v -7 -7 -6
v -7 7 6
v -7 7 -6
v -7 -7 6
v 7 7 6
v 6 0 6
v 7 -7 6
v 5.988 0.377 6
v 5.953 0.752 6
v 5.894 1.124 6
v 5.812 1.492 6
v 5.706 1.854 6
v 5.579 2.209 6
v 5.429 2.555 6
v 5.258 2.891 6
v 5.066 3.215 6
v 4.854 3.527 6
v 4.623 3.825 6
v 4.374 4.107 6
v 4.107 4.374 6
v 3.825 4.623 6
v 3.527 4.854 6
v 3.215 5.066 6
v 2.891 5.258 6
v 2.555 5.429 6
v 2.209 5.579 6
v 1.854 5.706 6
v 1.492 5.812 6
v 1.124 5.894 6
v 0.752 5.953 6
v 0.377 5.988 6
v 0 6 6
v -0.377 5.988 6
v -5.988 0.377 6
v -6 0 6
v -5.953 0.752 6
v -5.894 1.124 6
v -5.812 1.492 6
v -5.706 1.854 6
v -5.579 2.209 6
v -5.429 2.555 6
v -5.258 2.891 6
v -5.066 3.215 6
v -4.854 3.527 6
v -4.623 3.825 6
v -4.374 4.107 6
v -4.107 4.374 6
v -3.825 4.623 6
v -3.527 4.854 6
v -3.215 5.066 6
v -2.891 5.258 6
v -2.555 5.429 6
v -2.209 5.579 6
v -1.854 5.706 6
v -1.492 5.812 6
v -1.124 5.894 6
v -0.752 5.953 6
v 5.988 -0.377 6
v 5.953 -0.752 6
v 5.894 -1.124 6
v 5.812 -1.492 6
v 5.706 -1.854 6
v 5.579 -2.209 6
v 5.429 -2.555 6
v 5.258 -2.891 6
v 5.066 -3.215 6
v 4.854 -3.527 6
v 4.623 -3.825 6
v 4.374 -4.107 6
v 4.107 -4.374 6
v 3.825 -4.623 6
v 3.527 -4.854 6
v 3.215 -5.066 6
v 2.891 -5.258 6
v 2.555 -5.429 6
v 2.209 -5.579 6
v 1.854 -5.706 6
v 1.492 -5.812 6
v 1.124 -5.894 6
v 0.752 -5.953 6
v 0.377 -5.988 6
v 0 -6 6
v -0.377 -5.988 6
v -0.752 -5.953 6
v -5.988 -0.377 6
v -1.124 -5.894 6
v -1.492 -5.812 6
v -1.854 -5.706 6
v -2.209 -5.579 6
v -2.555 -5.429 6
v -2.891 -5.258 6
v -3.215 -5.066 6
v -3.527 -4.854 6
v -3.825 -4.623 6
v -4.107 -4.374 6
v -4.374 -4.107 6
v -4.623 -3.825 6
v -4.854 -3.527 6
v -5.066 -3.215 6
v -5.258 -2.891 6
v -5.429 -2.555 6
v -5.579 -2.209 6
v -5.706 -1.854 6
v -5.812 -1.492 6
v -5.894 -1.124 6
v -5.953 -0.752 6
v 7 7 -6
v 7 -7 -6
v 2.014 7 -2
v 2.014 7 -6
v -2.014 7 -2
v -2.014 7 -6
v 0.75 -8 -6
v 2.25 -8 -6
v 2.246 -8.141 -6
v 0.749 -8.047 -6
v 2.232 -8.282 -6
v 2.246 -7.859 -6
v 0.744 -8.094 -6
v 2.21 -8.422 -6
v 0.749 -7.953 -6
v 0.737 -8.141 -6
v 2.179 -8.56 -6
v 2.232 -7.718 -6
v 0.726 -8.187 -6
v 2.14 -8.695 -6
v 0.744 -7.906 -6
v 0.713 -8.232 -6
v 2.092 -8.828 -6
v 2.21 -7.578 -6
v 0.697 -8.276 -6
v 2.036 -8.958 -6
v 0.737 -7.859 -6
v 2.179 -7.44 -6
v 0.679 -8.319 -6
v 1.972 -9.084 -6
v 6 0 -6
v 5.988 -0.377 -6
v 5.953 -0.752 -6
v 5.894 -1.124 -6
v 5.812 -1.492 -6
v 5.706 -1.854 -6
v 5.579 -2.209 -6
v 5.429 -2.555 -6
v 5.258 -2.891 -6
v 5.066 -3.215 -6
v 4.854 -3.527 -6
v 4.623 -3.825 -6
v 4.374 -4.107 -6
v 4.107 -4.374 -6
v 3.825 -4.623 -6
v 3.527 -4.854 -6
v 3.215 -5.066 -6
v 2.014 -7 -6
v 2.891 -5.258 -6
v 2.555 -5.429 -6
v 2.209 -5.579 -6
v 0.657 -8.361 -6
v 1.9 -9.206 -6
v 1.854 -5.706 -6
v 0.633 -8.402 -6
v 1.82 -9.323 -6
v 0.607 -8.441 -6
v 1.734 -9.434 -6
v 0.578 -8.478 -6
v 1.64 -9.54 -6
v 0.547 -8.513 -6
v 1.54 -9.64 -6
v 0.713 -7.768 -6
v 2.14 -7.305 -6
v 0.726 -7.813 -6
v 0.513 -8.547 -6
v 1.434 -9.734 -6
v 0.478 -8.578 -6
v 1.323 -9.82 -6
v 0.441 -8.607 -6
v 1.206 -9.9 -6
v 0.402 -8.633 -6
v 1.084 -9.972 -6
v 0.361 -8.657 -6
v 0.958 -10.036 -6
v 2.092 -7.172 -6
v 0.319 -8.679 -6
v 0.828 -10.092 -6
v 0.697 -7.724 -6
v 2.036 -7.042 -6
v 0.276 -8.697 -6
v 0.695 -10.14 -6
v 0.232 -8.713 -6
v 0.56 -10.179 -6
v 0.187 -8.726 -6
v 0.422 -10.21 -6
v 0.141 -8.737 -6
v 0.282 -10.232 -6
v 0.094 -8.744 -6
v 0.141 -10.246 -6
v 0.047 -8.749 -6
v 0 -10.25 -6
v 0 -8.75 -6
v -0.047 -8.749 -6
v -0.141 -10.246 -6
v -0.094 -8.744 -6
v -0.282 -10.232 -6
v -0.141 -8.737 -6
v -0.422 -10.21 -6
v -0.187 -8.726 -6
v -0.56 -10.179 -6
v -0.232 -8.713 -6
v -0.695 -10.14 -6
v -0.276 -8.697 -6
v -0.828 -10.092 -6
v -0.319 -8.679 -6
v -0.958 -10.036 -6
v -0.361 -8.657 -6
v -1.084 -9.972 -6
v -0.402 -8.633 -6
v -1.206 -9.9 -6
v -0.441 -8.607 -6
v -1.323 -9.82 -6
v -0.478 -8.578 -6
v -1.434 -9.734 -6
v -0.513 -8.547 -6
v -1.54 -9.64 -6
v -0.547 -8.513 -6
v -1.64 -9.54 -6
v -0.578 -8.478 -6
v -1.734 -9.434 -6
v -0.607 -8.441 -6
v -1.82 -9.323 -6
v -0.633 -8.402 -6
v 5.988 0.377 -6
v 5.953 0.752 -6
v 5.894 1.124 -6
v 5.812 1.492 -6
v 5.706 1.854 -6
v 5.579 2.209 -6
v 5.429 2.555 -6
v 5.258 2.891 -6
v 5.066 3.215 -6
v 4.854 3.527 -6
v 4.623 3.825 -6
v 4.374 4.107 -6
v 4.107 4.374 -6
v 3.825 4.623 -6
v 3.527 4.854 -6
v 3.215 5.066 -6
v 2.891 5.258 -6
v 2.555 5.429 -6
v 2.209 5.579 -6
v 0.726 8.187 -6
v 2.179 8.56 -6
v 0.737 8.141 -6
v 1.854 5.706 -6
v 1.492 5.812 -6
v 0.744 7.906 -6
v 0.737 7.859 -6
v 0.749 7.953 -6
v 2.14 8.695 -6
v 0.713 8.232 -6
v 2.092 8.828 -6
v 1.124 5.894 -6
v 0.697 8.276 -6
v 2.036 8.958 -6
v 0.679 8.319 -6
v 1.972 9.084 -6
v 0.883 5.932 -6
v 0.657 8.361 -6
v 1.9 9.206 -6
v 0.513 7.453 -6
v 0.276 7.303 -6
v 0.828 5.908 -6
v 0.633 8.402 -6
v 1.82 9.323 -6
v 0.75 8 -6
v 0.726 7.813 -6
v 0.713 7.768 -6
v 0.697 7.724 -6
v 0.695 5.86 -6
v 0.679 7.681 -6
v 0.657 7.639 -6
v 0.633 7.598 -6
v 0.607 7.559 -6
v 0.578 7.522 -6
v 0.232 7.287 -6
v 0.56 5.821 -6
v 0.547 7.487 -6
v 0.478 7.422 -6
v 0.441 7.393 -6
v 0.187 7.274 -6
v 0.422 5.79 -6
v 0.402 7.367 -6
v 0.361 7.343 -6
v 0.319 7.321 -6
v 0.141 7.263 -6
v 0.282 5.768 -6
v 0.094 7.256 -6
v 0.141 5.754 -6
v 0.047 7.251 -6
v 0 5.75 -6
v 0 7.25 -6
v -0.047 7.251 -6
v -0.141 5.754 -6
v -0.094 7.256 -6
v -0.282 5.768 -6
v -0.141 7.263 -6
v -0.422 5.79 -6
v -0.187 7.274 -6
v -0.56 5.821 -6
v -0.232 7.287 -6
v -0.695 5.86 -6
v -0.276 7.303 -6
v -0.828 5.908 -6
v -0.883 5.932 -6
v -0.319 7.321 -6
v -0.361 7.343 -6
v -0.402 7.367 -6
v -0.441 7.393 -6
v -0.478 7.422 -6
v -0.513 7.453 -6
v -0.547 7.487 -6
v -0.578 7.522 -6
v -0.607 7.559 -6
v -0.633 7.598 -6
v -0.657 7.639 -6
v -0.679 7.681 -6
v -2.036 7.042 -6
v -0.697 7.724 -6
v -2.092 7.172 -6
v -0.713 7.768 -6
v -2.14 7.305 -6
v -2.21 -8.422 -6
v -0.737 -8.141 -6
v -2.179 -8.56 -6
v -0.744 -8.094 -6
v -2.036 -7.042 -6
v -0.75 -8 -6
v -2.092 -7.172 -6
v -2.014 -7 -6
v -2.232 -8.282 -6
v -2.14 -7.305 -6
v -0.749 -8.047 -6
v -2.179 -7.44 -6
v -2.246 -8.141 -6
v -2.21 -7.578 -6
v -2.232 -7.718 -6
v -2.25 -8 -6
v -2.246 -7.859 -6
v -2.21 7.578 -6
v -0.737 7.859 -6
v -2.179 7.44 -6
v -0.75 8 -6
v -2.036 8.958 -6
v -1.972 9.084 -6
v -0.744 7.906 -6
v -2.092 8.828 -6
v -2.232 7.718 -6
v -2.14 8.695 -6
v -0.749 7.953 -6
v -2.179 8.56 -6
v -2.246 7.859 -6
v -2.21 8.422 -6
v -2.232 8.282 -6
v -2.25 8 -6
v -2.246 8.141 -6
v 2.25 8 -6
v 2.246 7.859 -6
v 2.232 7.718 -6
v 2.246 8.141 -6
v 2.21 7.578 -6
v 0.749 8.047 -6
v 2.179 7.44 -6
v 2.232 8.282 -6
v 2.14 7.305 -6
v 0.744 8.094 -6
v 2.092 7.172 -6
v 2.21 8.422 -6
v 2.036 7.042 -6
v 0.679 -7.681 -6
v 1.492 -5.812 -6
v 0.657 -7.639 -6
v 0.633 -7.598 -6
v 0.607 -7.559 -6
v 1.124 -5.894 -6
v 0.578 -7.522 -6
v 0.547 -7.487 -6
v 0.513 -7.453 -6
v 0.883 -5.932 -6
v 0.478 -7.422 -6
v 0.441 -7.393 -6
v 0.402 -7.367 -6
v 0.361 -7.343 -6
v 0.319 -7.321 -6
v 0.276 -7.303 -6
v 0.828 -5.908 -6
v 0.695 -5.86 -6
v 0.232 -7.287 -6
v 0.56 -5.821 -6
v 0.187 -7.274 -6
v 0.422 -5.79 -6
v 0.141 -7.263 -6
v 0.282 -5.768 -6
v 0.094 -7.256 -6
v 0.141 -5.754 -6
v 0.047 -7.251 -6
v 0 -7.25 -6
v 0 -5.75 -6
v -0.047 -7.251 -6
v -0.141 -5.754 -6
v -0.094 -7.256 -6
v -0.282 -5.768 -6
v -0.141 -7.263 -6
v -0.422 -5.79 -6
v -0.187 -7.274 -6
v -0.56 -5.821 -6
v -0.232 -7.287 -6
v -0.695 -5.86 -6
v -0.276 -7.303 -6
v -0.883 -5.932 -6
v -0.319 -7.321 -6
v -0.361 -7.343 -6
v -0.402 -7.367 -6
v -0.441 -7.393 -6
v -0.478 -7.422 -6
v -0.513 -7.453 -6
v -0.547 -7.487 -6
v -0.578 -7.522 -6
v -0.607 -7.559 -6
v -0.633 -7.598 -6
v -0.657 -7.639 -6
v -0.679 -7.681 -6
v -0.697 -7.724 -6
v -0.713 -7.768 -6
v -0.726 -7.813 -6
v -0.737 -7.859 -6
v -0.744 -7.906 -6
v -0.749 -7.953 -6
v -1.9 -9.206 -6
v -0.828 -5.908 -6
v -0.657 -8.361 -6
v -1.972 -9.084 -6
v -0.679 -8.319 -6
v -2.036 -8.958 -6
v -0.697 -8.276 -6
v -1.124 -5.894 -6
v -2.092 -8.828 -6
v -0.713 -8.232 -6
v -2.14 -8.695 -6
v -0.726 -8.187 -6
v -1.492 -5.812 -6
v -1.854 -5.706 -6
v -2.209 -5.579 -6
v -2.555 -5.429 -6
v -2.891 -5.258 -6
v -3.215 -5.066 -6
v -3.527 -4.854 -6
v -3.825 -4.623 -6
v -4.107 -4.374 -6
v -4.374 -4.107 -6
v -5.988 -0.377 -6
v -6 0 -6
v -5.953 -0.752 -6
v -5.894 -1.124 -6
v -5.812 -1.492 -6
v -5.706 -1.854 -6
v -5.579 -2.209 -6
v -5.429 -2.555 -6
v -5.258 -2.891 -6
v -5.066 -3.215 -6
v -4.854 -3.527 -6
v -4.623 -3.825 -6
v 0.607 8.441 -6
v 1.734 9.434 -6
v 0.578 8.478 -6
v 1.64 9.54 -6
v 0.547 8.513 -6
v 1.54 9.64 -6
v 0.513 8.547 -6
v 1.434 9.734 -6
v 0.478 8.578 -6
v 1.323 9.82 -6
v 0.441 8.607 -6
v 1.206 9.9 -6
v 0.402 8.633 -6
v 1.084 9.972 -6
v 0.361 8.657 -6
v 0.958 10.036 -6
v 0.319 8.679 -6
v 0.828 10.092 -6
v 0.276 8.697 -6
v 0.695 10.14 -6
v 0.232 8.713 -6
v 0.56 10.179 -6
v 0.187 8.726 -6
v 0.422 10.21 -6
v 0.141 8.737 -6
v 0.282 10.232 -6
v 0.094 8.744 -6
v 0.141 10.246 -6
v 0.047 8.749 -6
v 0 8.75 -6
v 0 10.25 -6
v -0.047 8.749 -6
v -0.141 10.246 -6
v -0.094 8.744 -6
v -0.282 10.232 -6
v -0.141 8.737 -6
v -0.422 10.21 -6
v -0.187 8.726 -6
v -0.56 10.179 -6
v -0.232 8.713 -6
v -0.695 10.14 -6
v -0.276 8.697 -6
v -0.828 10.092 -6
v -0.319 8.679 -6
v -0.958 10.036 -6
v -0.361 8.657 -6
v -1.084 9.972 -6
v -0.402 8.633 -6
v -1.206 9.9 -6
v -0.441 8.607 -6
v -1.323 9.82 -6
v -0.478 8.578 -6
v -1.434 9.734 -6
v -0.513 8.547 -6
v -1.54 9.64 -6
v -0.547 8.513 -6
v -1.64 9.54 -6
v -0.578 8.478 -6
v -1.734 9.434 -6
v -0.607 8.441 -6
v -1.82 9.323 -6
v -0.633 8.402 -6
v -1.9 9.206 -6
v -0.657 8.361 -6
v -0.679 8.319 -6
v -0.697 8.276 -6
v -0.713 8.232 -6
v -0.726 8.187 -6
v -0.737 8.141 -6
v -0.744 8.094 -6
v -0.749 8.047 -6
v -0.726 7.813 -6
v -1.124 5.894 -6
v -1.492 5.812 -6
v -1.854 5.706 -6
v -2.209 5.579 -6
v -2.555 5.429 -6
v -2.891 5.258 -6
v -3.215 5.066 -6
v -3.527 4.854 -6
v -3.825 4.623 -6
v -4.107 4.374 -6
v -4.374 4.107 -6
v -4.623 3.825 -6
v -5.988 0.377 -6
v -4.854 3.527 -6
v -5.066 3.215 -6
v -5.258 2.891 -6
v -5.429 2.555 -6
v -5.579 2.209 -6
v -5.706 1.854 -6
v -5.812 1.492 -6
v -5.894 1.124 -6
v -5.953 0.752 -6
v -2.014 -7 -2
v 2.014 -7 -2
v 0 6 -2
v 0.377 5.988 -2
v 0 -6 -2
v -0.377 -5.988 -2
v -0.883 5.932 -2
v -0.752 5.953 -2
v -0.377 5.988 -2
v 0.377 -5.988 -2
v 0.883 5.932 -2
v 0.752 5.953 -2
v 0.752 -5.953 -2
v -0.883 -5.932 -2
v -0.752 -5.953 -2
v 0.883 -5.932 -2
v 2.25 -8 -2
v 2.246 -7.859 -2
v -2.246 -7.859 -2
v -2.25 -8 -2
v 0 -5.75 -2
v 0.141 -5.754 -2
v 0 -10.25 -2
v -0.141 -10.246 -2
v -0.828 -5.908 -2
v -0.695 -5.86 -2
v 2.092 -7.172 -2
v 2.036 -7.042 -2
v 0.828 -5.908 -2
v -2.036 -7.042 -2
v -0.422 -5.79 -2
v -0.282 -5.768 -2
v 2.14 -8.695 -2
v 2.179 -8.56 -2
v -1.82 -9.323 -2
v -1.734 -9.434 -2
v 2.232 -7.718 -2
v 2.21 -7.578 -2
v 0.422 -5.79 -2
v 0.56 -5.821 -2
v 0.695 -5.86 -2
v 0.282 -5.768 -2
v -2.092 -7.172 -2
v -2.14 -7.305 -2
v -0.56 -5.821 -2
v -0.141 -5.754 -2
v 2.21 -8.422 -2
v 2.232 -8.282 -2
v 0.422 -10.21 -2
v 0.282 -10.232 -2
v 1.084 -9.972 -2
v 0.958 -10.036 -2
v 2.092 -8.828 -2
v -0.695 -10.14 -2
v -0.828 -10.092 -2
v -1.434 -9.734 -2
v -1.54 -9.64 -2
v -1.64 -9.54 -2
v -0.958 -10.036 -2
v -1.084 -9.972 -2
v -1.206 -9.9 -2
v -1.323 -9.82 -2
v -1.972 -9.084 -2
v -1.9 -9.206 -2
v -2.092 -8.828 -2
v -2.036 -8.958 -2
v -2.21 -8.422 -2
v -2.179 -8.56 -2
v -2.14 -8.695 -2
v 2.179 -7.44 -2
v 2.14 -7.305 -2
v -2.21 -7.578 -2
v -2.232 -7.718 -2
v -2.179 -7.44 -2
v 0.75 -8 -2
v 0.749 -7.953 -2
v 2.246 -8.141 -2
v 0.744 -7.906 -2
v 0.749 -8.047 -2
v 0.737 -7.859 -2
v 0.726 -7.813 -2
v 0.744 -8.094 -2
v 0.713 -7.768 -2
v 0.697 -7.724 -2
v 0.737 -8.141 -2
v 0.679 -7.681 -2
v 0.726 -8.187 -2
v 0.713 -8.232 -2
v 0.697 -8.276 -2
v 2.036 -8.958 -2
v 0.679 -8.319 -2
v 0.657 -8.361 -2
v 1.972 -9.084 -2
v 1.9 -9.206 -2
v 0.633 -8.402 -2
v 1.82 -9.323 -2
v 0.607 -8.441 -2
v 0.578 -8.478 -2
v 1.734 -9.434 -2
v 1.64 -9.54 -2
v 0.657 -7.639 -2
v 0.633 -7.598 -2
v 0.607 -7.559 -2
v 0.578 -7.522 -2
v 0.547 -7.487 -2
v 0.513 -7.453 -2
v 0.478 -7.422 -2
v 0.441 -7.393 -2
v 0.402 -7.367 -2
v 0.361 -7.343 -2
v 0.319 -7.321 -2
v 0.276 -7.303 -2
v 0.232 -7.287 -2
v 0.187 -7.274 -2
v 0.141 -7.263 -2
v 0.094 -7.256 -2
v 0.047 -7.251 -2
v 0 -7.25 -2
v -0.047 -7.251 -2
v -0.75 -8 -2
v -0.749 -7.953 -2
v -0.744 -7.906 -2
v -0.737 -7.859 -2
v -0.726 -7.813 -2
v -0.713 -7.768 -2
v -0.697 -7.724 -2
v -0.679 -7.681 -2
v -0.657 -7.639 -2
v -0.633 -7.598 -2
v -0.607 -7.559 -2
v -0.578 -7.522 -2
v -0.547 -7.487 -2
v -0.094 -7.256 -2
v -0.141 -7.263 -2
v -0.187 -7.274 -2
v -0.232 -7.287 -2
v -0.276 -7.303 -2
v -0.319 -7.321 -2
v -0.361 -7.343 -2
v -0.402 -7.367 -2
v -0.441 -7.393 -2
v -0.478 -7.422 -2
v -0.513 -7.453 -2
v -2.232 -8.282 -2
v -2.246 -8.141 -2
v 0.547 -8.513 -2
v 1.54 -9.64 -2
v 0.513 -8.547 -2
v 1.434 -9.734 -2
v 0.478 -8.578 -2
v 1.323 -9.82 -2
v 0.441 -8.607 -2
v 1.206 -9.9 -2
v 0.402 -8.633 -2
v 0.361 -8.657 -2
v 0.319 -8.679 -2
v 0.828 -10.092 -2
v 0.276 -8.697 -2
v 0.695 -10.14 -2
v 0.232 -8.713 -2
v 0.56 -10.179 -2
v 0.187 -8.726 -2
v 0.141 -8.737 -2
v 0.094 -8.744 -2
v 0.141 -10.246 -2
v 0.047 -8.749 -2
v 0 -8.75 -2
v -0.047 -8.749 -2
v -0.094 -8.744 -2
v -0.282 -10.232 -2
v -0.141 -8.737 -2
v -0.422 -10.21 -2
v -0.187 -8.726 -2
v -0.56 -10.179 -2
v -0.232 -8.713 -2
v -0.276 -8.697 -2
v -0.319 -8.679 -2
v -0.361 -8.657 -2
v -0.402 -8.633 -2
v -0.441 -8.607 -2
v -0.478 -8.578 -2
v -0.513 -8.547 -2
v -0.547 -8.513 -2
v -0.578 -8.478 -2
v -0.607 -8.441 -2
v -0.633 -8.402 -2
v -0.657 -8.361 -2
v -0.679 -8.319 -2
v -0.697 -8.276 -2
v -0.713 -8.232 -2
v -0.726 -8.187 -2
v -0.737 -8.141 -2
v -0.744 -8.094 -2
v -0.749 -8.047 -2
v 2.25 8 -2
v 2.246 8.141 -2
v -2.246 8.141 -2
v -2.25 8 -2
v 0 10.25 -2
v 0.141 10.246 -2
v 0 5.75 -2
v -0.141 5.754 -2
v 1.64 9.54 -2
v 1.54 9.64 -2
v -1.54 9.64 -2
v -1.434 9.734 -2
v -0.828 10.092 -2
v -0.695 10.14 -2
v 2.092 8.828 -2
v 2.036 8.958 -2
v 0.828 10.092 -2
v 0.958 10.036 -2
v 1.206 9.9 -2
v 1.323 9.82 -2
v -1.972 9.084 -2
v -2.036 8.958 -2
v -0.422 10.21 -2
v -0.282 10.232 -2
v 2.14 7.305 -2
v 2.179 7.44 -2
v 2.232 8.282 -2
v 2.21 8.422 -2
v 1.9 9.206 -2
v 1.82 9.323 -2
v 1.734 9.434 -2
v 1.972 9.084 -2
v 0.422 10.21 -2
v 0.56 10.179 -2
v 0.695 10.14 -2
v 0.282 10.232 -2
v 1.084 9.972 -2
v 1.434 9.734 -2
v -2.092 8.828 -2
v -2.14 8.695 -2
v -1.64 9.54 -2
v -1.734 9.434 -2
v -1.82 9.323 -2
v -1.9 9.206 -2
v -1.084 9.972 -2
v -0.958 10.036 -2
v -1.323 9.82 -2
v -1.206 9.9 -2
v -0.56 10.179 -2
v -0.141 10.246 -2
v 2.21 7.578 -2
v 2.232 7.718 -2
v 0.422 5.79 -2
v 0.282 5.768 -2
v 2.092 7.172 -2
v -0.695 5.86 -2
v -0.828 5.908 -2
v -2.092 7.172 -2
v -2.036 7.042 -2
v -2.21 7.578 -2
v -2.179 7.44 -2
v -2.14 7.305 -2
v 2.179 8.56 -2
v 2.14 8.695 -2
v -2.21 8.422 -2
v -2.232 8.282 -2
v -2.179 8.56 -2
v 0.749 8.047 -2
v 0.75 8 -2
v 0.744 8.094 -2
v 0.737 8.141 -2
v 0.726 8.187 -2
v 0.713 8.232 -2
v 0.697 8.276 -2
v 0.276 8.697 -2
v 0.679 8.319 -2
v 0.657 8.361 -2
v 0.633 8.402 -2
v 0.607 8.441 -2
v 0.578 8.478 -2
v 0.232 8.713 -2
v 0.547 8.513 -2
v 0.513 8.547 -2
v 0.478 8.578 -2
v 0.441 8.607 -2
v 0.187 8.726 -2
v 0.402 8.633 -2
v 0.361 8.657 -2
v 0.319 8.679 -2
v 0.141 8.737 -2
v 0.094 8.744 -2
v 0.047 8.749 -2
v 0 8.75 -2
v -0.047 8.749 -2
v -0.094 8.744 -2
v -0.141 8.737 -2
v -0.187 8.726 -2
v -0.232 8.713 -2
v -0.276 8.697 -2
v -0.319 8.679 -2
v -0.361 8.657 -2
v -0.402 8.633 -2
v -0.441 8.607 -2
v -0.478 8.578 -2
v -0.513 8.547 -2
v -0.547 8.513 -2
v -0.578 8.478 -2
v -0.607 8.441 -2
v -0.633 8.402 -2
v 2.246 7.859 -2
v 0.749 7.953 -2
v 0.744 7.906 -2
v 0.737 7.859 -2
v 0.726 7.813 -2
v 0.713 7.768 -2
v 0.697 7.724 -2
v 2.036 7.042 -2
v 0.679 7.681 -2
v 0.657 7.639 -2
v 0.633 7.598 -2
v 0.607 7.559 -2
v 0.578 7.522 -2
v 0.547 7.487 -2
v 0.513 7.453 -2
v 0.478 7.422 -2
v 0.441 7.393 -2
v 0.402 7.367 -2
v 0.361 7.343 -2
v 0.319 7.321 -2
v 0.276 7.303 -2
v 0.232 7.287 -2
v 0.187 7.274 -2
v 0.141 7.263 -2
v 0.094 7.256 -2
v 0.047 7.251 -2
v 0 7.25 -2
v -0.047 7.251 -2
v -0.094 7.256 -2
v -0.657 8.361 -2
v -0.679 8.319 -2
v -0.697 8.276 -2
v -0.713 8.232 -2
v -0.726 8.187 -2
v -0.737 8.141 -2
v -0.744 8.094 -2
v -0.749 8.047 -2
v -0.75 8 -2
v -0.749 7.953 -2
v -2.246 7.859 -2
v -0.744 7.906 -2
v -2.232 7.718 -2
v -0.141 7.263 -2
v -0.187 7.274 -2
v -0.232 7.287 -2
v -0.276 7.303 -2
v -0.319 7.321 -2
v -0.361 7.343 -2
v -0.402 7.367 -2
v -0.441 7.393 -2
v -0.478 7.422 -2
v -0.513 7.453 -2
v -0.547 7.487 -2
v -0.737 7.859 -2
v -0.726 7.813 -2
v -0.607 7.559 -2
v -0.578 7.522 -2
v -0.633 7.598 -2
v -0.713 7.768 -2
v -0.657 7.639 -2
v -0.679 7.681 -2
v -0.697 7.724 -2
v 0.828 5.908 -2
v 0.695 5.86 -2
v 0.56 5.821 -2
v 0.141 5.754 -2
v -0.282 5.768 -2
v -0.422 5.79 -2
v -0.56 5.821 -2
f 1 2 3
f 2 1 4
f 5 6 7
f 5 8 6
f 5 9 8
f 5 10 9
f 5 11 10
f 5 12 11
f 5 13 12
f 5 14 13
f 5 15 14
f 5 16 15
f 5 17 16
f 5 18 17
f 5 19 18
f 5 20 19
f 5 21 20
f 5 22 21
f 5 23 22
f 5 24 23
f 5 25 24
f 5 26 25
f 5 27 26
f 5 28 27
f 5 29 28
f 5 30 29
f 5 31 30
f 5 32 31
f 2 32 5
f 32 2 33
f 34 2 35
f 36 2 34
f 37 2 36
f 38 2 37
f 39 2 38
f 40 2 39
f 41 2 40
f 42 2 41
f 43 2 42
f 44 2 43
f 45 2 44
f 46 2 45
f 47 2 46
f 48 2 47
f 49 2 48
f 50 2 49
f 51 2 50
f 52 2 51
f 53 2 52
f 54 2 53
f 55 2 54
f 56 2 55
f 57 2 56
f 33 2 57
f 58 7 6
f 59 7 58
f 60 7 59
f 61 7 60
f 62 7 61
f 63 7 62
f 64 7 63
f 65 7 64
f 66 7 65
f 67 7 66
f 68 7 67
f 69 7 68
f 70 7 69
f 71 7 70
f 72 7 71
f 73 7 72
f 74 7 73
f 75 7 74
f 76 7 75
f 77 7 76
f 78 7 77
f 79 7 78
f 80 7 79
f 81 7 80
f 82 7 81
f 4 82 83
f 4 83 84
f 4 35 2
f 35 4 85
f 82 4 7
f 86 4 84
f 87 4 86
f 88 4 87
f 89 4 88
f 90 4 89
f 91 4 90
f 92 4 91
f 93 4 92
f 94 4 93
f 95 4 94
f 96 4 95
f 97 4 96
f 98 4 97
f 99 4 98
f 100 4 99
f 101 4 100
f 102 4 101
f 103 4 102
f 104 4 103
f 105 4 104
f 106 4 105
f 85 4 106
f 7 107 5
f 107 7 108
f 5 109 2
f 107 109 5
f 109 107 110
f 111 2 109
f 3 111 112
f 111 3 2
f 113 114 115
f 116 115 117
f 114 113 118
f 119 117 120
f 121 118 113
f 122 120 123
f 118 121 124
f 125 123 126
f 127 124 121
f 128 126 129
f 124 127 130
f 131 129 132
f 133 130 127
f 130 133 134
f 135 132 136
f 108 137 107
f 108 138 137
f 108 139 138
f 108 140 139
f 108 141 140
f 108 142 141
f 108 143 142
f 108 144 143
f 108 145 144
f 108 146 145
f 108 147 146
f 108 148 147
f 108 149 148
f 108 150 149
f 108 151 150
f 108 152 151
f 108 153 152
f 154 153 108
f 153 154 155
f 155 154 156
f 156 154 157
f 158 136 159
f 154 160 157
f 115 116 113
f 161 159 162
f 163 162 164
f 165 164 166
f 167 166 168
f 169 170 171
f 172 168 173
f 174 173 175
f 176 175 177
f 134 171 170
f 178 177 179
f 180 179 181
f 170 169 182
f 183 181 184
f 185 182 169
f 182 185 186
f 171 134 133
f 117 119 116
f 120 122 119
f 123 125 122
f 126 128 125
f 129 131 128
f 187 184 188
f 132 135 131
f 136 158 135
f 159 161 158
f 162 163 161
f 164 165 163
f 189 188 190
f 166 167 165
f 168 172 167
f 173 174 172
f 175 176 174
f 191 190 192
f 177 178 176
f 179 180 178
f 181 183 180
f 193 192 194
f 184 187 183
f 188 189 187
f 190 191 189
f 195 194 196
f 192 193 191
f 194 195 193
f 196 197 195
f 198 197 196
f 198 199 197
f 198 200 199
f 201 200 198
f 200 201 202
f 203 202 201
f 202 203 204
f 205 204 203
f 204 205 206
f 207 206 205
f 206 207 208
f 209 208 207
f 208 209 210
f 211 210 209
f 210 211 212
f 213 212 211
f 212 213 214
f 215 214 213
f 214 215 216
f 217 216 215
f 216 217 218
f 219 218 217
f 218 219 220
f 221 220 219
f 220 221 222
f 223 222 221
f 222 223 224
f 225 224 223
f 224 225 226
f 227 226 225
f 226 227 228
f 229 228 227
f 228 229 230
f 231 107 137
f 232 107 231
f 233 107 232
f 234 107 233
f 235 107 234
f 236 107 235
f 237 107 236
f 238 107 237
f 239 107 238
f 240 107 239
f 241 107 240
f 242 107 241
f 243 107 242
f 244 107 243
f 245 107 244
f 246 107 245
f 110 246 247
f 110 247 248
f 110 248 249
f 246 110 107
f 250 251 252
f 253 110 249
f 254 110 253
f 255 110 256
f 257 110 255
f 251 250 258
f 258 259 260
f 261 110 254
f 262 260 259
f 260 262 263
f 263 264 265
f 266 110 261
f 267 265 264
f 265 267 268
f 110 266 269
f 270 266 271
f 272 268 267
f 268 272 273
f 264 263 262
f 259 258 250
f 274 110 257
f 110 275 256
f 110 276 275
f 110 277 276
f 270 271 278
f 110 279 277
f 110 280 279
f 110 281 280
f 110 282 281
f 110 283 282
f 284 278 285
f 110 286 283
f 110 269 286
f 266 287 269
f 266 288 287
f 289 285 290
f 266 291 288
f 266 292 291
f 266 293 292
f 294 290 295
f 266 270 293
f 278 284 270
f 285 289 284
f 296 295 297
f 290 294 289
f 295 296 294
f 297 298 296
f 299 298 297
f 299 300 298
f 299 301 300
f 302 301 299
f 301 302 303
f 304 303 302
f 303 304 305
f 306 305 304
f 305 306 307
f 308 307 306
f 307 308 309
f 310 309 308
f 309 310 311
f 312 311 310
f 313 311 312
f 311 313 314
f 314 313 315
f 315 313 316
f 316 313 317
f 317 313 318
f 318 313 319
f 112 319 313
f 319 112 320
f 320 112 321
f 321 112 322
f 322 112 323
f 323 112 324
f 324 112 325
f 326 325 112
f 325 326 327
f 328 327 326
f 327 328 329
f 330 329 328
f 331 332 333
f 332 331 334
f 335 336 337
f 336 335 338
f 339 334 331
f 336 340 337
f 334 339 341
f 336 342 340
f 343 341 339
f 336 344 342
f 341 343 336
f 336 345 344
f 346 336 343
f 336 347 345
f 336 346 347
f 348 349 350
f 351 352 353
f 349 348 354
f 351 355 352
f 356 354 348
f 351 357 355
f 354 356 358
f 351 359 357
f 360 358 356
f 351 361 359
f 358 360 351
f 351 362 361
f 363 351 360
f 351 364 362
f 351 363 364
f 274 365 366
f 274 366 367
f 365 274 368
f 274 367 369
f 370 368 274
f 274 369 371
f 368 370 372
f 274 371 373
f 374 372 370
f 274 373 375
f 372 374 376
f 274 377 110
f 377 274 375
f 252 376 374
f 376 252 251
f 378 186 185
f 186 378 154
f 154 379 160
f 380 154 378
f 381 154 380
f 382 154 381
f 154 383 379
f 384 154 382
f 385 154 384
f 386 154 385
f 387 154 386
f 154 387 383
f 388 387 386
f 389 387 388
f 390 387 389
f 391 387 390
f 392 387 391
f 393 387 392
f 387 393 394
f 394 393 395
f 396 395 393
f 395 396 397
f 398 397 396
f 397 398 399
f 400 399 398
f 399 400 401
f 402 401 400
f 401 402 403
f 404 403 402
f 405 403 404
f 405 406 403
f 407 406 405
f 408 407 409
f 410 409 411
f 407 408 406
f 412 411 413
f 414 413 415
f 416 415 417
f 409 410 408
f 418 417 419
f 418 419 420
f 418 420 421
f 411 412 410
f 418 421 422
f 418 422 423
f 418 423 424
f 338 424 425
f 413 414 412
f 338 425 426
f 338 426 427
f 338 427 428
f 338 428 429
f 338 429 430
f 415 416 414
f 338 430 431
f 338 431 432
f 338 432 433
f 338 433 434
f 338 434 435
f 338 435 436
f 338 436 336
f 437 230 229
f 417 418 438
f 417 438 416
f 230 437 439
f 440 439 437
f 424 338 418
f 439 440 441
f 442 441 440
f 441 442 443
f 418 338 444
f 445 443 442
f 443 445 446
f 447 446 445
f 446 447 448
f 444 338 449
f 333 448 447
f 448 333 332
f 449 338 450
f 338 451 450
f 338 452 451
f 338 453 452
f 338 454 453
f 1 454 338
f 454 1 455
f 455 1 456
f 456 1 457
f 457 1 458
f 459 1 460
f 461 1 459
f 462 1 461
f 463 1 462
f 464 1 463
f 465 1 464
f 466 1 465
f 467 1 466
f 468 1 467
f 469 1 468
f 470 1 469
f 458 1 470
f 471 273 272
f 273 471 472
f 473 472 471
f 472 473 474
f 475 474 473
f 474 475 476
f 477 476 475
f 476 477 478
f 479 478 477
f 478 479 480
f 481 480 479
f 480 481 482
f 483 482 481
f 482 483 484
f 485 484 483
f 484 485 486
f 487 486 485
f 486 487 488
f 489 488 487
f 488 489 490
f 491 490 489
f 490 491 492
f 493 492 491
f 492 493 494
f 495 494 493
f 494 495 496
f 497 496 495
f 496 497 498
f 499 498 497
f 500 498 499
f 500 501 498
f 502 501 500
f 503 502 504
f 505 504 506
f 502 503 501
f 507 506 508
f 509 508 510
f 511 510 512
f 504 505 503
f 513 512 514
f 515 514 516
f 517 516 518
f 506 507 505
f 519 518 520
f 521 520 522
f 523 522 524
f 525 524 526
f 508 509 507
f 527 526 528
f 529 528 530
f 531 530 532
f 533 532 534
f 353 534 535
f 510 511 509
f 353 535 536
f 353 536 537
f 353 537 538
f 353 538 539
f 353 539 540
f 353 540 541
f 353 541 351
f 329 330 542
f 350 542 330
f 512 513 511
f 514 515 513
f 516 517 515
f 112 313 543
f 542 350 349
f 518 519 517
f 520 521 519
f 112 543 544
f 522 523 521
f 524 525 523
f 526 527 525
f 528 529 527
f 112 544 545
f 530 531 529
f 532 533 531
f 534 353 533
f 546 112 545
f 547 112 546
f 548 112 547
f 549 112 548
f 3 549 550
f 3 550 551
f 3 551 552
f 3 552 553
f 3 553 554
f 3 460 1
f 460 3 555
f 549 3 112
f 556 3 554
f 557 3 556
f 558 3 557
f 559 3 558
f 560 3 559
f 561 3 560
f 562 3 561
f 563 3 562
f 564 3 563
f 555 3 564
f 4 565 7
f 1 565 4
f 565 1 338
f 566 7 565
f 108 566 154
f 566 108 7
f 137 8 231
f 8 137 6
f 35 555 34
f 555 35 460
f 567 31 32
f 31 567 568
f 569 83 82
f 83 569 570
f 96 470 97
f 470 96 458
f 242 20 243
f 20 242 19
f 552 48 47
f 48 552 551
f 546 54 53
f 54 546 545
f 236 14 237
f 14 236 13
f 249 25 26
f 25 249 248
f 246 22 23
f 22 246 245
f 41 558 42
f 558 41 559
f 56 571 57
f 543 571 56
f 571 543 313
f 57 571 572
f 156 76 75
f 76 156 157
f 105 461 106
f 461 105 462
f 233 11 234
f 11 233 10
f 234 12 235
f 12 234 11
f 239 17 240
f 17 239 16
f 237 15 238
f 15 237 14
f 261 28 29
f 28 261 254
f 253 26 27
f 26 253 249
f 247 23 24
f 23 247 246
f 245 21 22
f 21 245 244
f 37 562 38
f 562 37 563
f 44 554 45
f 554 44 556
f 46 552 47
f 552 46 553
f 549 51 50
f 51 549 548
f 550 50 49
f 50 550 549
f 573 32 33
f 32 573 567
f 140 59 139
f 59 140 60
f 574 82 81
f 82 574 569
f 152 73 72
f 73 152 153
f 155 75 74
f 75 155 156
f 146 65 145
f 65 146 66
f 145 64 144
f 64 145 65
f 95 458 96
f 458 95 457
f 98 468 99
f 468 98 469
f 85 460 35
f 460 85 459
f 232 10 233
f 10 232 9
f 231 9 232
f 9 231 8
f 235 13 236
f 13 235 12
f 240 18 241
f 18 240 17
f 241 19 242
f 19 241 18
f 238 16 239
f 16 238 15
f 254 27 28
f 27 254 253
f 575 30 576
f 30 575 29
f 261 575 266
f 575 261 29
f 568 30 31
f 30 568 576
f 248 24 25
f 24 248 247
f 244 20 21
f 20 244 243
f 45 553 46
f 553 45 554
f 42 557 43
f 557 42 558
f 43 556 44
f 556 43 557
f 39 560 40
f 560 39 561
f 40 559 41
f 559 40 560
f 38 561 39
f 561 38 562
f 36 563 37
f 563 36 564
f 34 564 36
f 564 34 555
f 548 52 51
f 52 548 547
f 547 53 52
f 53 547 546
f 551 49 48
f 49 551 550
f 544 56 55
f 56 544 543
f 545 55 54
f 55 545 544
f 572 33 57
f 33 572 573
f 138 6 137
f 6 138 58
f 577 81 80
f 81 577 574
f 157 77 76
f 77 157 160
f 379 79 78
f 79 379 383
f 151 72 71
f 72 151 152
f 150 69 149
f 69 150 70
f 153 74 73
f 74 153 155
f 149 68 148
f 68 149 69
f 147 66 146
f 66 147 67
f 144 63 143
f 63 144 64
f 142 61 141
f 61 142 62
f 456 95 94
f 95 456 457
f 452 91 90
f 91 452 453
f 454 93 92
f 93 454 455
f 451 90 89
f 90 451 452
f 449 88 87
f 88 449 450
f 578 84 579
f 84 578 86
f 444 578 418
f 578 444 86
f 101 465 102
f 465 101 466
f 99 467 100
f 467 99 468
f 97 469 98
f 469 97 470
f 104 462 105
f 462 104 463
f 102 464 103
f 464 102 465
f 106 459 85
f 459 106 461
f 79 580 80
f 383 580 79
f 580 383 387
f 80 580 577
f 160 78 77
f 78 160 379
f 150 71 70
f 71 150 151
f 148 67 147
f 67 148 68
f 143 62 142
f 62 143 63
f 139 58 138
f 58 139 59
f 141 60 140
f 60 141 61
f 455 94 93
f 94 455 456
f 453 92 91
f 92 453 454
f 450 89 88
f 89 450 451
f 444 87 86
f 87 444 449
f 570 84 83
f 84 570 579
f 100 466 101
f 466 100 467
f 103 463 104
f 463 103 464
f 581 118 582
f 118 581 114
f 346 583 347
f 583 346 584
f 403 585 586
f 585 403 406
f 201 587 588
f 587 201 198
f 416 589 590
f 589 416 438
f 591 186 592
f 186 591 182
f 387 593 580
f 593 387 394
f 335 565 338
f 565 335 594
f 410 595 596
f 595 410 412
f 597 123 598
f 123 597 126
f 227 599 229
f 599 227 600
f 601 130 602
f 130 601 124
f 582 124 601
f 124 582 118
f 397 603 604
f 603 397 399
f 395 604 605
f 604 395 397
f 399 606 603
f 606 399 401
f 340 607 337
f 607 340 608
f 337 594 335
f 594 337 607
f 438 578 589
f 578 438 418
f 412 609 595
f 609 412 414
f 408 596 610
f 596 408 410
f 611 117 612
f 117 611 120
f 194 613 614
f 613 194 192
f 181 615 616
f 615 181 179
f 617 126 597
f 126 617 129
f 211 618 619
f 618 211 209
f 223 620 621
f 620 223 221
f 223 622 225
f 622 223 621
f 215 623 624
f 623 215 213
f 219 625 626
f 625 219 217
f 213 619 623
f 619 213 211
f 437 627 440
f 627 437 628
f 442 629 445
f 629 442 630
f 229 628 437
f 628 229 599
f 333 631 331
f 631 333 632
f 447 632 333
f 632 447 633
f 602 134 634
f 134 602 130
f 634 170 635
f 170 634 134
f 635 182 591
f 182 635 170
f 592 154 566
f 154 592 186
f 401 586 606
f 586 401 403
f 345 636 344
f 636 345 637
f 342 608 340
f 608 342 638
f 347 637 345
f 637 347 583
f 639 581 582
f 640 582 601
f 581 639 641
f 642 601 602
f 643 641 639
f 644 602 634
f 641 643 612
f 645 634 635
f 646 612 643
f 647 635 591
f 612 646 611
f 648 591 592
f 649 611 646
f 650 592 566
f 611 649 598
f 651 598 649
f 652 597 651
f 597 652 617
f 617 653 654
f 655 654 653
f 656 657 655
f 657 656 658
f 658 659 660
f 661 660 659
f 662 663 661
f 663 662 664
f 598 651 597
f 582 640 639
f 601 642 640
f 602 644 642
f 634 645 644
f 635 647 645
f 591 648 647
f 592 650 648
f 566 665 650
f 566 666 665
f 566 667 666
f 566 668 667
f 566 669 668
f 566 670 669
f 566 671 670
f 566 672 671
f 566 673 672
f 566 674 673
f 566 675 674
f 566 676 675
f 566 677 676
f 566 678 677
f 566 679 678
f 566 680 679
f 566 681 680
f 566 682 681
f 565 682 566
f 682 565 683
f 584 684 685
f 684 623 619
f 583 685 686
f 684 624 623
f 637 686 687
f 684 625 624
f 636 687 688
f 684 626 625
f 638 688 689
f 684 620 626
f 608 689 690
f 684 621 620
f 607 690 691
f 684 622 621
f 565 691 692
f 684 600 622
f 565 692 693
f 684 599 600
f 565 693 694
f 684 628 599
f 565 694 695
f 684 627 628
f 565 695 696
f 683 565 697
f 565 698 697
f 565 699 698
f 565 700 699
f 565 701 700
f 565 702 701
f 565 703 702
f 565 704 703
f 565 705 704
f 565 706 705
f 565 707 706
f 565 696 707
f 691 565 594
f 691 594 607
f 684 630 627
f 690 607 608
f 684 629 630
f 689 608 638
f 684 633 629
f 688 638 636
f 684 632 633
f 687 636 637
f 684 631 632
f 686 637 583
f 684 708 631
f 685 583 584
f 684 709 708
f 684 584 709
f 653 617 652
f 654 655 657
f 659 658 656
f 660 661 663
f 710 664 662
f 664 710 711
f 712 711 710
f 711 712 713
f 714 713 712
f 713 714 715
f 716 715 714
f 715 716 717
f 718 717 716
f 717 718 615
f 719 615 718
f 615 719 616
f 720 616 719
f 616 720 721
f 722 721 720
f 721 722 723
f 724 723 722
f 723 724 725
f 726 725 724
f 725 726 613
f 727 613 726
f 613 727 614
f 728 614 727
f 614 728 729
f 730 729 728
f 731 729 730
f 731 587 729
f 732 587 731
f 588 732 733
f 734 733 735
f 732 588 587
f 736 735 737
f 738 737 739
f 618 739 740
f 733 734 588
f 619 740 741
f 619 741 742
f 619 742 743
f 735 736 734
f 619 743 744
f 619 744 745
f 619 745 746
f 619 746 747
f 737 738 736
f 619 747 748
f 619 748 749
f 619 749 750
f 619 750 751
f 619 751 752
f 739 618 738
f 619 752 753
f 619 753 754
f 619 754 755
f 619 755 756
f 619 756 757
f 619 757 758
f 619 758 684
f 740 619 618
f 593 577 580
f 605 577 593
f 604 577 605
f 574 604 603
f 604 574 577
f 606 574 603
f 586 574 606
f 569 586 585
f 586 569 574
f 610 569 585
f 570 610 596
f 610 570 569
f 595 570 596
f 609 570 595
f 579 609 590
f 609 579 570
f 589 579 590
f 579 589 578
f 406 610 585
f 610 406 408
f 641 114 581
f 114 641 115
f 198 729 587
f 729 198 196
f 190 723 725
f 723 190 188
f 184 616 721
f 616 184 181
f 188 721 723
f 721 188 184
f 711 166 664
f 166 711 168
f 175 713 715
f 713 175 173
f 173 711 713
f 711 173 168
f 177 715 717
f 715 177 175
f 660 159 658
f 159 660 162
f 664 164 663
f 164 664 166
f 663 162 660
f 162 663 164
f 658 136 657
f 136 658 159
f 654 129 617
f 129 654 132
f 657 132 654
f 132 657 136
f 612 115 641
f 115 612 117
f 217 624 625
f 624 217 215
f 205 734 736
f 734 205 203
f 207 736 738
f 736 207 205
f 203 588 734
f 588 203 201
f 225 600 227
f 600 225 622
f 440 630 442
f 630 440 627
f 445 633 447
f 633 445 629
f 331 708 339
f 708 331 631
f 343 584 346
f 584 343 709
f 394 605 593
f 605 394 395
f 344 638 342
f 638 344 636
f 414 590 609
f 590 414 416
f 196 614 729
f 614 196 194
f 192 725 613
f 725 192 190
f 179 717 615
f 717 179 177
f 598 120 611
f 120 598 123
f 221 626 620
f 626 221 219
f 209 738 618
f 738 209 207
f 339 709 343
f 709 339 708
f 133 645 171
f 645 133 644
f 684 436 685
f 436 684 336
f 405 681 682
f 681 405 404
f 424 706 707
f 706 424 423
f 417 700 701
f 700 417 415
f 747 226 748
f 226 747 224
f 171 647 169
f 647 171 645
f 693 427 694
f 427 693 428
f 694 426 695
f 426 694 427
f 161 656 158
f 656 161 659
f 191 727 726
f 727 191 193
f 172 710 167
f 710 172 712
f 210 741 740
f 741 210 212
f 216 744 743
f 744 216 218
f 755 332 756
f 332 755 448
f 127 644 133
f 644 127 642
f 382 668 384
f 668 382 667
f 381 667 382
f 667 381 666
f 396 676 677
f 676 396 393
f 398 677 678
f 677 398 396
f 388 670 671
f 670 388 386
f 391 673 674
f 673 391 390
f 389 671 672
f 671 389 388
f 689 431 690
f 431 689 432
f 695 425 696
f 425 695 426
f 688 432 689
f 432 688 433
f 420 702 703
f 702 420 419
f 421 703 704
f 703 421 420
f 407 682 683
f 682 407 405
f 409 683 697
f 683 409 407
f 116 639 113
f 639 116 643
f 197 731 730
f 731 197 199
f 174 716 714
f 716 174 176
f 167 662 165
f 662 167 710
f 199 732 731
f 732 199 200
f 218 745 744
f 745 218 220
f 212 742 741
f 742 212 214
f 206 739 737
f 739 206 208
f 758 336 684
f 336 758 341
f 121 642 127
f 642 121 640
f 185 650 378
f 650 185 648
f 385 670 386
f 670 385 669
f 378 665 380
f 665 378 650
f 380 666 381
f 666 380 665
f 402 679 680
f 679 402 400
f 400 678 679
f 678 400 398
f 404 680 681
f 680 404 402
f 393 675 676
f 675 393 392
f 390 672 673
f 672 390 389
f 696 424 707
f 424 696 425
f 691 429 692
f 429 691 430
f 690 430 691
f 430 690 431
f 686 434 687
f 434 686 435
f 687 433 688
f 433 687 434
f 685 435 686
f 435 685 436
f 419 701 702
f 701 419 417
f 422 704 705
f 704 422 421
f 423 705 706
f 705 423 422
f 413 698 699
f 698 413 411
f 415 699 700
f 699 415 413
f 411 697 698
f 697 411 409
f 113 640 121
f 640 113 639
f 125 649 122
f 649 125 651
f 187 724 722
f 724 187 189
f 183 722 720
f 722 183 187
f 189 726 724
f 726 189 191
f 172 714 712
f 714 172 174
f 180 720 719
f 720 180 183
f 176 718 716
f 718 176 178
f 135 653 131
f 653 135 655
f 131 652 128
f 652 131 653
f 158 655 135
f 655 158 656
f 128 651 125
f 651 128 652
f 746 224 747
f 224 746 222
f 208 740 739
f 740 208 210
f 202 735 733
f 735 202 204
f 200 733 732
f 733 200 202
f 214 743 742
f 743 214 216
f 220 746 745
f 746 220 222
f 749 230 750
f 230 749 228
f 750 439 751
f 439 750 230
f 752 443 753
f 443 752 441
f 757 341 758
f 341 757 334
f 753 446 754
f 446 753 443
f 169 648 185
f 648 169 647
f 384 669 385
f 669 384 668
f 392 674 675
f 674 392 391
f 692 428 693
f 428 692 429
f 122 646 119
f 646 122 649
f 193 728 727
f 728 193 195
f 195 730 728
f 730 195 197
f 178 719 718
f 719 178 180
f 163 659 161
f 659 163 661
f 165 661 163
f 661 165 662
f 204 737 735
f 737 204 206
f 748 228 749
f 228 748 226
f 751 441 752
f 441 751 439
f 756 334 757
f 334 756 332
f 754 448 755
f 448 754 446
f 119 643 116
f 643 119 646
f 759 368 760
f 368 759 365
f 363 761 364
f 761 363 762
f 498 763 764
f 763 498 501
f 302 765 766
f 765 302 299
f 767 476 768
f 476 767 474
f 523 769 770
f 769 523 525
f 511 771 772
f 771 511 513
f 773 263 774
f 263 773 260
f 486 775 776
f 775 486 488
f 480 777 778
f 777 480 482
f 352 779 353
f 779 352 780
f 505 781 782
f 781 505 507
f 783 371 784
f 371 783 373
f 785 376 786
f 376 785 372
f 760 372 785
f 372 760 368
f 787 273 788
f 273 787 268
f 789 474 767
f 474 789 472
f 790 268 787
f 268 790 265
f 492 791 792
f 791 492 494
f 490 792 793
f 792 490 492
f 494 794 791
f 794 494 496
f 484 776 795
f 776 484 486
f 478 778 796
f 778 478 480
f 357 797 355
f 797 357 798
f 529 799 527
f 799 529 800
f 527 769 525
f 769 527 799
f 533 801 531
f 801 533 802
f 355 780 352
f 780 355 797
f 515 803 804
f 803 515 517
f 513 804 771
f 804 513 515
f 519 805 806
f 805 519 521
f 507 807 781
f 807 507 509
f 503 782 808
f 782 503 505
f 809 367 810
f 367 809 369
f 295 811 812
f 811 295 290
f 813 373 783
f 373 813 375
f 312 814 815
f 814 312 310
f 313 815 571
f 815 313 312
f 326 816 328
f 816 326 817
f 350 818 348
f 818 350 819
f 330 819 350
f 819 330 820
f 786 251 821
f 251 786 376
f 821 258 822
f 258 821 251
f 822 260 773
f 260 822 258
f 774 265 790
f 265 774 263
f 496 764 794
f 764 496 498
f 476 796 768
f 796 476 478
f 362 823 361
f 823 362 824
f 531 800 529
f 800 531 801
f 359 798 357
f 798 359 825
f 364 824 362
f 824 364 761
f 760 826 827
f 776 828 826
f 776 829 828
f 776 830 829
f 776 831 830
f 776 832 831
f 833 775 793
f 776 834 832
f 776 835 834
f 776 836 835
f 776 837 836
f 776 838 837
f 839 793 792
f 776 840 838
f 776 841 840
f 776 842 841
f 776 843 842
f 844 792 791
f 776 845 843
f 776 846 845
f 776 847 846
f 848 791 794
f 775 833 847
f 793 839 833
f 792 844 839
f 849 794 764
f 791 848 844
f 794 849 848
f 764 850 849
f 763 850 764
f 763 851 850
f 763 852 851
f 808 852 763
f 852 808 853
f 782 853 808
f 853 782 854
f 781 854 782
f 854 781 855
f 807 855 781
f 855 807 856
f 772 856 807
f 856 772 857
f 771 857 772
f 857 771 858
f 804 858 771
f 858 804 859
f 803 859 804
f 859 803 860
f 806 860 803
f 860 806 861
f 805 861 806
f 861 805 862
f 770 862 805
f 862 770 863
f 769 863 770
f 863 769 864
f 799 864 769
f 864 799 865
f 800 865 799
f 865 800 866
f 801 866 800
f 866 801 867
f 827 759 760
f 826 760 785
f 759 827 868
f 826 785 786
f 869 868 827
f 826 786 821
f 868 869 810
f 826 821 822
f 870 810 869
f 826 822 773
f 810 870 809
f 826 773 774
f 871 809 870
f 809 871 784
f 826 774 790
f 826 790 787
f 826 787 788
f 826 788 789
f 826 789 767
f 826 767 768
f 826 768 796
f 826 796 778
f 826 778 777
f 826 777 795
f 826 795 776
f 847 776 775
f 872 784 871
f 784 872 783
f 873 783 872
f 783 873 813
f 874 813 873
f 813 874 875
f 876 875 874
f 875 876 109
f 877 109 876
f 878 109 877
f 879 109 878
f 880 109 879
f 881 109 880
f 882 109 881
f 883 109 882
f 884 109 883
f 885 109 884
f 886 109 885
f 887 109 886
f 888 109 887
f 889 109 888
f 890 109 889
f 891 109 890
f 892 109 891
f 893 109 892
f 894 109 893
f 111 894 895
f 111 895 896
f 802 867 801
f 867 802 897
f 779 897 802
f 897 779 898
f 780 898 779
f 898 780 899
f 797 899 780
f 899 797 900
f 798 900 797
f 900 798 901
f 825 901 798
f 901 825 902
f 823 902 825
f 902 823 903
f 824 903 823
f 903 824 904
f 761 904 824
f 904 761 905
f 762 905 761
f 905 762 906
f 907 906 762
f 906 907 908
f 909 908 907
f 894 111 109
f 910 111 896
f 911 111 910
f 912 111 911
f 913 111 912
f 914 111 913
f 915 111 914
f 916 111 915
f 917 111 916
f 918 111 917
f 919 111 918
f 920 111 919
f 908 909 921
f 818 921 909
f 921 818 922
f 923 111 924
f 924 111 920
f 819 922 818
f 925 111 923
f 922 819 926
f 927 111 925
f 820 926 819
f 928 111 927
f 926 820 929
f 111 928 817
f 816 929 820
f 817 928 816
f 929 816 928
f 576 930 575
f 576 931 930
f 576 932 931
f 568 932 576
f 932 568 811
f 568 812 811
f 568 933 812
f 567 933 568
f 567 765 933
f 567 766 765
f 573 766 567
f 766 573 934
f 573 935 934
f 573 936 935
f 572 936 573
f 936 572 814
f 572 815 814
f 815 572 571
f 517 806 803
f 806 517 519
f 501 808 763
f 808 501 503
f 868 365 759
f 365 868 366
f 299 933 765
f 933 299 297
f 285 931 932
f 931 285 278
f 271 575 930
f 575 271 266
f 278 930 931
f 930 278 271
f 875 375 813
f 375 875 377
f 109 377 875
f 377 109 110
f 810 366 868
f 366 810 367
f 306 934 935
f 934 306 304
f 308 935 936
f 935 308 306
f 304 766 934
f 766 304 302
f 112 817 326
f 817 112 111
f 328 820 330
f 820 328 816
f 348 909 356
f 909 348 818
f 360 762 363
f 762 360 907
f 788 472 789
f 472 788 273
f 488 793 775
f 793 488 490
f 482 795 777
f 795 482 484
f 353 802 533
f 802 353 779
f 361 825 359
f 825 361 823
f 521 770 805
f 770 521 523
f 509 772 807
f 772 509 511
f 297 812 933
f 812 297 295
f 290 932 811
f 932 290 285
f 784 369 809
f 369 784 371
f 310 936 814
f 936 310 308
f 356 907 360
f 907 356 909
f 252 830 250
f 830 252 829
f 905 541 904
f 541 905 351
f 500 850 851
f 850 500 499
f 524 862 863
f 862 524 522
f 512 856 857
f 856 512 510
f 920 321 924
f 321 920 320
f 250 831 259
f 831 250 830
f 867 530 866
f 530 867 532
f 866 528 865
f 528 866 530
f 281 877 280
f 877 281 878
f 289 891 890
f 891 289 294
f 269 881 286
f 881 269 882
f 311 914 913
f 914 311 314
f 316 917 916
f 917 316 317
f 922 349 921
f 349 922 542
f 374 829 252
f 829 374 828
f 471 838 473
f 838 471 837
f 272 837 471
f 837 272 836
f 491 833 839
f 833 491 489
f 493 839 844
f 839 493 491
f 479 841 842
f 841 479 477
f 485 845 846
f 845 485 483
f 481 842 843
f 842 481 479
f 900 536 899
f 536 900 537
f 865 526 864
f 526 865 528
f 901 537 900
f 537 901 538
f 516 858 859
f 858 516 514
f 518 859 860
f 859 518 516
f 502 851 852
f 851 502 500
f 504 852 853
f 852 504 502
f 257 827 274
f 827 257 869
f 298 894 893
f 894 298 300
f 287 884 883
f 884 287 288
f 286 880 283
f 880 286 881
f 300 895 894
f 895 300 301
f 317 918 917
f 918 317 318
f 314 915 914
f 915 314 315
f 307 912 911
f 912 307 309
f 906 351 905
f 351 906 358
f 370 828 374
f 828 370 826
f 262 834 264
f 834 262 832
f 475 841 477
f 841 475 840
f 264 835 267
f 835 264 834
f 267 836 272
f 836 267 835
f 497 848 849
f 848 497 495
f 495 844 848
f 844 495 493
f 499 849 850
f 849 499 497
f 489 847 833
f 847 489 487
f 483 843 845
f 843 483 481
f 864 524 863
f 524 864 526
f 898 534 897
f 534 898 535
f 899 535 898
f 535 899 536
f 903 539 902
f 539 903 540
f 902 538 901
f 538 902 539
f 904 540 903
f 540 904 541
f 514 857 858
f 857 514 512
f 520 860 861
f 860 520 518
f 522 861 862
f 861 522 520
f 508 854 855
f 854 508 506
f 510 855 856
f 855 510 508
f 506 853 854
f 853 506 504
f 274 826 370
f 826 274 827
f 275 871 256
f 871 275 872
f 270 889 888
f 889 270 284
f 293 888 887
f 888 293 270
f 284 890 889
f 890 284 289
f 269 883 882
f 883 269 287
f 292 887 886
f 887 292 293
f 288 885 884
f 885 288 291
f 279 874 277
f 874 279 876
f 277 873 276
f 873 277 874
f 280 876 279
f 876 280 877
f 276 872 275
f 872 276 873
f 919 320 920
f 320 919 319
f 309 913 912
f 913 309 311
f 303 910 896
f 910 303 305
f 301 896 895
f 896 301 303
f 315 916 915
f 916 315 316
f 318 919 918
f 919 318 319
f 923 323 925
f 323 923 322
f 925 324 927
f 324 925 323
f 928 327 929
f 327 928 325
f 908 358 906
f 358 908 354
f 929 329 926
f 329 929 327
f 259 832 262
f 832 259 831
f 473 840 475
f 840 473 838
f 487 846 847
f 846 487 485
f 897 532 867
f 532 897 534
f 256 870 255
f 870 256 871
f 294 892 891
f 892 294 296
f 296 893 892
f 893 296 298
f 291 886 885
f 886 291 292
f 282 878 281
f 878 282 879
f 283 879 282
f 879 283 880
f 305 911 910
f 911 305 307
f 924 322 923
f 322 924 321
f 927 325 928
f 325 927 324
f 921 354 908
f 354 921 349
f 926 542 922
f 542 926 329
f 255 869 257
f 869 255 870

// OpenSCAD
$fn = 100;
altezza_cubo = 12;

difference(){
    cube([14,14,altezza_cubo],center = true);
    cylinder(altezza_cubo,12/2,12/2,center = true);

}

for (i = [-8,8]){
    translate ([0,i,-(altezza_cubo/2)+2]){
        difference(){
        cylinder(4,4.5/2,4.5/2,center = true);
        cylinder(4,1.5/2,1.5/2,center = true);
            
        }
    }
    }
